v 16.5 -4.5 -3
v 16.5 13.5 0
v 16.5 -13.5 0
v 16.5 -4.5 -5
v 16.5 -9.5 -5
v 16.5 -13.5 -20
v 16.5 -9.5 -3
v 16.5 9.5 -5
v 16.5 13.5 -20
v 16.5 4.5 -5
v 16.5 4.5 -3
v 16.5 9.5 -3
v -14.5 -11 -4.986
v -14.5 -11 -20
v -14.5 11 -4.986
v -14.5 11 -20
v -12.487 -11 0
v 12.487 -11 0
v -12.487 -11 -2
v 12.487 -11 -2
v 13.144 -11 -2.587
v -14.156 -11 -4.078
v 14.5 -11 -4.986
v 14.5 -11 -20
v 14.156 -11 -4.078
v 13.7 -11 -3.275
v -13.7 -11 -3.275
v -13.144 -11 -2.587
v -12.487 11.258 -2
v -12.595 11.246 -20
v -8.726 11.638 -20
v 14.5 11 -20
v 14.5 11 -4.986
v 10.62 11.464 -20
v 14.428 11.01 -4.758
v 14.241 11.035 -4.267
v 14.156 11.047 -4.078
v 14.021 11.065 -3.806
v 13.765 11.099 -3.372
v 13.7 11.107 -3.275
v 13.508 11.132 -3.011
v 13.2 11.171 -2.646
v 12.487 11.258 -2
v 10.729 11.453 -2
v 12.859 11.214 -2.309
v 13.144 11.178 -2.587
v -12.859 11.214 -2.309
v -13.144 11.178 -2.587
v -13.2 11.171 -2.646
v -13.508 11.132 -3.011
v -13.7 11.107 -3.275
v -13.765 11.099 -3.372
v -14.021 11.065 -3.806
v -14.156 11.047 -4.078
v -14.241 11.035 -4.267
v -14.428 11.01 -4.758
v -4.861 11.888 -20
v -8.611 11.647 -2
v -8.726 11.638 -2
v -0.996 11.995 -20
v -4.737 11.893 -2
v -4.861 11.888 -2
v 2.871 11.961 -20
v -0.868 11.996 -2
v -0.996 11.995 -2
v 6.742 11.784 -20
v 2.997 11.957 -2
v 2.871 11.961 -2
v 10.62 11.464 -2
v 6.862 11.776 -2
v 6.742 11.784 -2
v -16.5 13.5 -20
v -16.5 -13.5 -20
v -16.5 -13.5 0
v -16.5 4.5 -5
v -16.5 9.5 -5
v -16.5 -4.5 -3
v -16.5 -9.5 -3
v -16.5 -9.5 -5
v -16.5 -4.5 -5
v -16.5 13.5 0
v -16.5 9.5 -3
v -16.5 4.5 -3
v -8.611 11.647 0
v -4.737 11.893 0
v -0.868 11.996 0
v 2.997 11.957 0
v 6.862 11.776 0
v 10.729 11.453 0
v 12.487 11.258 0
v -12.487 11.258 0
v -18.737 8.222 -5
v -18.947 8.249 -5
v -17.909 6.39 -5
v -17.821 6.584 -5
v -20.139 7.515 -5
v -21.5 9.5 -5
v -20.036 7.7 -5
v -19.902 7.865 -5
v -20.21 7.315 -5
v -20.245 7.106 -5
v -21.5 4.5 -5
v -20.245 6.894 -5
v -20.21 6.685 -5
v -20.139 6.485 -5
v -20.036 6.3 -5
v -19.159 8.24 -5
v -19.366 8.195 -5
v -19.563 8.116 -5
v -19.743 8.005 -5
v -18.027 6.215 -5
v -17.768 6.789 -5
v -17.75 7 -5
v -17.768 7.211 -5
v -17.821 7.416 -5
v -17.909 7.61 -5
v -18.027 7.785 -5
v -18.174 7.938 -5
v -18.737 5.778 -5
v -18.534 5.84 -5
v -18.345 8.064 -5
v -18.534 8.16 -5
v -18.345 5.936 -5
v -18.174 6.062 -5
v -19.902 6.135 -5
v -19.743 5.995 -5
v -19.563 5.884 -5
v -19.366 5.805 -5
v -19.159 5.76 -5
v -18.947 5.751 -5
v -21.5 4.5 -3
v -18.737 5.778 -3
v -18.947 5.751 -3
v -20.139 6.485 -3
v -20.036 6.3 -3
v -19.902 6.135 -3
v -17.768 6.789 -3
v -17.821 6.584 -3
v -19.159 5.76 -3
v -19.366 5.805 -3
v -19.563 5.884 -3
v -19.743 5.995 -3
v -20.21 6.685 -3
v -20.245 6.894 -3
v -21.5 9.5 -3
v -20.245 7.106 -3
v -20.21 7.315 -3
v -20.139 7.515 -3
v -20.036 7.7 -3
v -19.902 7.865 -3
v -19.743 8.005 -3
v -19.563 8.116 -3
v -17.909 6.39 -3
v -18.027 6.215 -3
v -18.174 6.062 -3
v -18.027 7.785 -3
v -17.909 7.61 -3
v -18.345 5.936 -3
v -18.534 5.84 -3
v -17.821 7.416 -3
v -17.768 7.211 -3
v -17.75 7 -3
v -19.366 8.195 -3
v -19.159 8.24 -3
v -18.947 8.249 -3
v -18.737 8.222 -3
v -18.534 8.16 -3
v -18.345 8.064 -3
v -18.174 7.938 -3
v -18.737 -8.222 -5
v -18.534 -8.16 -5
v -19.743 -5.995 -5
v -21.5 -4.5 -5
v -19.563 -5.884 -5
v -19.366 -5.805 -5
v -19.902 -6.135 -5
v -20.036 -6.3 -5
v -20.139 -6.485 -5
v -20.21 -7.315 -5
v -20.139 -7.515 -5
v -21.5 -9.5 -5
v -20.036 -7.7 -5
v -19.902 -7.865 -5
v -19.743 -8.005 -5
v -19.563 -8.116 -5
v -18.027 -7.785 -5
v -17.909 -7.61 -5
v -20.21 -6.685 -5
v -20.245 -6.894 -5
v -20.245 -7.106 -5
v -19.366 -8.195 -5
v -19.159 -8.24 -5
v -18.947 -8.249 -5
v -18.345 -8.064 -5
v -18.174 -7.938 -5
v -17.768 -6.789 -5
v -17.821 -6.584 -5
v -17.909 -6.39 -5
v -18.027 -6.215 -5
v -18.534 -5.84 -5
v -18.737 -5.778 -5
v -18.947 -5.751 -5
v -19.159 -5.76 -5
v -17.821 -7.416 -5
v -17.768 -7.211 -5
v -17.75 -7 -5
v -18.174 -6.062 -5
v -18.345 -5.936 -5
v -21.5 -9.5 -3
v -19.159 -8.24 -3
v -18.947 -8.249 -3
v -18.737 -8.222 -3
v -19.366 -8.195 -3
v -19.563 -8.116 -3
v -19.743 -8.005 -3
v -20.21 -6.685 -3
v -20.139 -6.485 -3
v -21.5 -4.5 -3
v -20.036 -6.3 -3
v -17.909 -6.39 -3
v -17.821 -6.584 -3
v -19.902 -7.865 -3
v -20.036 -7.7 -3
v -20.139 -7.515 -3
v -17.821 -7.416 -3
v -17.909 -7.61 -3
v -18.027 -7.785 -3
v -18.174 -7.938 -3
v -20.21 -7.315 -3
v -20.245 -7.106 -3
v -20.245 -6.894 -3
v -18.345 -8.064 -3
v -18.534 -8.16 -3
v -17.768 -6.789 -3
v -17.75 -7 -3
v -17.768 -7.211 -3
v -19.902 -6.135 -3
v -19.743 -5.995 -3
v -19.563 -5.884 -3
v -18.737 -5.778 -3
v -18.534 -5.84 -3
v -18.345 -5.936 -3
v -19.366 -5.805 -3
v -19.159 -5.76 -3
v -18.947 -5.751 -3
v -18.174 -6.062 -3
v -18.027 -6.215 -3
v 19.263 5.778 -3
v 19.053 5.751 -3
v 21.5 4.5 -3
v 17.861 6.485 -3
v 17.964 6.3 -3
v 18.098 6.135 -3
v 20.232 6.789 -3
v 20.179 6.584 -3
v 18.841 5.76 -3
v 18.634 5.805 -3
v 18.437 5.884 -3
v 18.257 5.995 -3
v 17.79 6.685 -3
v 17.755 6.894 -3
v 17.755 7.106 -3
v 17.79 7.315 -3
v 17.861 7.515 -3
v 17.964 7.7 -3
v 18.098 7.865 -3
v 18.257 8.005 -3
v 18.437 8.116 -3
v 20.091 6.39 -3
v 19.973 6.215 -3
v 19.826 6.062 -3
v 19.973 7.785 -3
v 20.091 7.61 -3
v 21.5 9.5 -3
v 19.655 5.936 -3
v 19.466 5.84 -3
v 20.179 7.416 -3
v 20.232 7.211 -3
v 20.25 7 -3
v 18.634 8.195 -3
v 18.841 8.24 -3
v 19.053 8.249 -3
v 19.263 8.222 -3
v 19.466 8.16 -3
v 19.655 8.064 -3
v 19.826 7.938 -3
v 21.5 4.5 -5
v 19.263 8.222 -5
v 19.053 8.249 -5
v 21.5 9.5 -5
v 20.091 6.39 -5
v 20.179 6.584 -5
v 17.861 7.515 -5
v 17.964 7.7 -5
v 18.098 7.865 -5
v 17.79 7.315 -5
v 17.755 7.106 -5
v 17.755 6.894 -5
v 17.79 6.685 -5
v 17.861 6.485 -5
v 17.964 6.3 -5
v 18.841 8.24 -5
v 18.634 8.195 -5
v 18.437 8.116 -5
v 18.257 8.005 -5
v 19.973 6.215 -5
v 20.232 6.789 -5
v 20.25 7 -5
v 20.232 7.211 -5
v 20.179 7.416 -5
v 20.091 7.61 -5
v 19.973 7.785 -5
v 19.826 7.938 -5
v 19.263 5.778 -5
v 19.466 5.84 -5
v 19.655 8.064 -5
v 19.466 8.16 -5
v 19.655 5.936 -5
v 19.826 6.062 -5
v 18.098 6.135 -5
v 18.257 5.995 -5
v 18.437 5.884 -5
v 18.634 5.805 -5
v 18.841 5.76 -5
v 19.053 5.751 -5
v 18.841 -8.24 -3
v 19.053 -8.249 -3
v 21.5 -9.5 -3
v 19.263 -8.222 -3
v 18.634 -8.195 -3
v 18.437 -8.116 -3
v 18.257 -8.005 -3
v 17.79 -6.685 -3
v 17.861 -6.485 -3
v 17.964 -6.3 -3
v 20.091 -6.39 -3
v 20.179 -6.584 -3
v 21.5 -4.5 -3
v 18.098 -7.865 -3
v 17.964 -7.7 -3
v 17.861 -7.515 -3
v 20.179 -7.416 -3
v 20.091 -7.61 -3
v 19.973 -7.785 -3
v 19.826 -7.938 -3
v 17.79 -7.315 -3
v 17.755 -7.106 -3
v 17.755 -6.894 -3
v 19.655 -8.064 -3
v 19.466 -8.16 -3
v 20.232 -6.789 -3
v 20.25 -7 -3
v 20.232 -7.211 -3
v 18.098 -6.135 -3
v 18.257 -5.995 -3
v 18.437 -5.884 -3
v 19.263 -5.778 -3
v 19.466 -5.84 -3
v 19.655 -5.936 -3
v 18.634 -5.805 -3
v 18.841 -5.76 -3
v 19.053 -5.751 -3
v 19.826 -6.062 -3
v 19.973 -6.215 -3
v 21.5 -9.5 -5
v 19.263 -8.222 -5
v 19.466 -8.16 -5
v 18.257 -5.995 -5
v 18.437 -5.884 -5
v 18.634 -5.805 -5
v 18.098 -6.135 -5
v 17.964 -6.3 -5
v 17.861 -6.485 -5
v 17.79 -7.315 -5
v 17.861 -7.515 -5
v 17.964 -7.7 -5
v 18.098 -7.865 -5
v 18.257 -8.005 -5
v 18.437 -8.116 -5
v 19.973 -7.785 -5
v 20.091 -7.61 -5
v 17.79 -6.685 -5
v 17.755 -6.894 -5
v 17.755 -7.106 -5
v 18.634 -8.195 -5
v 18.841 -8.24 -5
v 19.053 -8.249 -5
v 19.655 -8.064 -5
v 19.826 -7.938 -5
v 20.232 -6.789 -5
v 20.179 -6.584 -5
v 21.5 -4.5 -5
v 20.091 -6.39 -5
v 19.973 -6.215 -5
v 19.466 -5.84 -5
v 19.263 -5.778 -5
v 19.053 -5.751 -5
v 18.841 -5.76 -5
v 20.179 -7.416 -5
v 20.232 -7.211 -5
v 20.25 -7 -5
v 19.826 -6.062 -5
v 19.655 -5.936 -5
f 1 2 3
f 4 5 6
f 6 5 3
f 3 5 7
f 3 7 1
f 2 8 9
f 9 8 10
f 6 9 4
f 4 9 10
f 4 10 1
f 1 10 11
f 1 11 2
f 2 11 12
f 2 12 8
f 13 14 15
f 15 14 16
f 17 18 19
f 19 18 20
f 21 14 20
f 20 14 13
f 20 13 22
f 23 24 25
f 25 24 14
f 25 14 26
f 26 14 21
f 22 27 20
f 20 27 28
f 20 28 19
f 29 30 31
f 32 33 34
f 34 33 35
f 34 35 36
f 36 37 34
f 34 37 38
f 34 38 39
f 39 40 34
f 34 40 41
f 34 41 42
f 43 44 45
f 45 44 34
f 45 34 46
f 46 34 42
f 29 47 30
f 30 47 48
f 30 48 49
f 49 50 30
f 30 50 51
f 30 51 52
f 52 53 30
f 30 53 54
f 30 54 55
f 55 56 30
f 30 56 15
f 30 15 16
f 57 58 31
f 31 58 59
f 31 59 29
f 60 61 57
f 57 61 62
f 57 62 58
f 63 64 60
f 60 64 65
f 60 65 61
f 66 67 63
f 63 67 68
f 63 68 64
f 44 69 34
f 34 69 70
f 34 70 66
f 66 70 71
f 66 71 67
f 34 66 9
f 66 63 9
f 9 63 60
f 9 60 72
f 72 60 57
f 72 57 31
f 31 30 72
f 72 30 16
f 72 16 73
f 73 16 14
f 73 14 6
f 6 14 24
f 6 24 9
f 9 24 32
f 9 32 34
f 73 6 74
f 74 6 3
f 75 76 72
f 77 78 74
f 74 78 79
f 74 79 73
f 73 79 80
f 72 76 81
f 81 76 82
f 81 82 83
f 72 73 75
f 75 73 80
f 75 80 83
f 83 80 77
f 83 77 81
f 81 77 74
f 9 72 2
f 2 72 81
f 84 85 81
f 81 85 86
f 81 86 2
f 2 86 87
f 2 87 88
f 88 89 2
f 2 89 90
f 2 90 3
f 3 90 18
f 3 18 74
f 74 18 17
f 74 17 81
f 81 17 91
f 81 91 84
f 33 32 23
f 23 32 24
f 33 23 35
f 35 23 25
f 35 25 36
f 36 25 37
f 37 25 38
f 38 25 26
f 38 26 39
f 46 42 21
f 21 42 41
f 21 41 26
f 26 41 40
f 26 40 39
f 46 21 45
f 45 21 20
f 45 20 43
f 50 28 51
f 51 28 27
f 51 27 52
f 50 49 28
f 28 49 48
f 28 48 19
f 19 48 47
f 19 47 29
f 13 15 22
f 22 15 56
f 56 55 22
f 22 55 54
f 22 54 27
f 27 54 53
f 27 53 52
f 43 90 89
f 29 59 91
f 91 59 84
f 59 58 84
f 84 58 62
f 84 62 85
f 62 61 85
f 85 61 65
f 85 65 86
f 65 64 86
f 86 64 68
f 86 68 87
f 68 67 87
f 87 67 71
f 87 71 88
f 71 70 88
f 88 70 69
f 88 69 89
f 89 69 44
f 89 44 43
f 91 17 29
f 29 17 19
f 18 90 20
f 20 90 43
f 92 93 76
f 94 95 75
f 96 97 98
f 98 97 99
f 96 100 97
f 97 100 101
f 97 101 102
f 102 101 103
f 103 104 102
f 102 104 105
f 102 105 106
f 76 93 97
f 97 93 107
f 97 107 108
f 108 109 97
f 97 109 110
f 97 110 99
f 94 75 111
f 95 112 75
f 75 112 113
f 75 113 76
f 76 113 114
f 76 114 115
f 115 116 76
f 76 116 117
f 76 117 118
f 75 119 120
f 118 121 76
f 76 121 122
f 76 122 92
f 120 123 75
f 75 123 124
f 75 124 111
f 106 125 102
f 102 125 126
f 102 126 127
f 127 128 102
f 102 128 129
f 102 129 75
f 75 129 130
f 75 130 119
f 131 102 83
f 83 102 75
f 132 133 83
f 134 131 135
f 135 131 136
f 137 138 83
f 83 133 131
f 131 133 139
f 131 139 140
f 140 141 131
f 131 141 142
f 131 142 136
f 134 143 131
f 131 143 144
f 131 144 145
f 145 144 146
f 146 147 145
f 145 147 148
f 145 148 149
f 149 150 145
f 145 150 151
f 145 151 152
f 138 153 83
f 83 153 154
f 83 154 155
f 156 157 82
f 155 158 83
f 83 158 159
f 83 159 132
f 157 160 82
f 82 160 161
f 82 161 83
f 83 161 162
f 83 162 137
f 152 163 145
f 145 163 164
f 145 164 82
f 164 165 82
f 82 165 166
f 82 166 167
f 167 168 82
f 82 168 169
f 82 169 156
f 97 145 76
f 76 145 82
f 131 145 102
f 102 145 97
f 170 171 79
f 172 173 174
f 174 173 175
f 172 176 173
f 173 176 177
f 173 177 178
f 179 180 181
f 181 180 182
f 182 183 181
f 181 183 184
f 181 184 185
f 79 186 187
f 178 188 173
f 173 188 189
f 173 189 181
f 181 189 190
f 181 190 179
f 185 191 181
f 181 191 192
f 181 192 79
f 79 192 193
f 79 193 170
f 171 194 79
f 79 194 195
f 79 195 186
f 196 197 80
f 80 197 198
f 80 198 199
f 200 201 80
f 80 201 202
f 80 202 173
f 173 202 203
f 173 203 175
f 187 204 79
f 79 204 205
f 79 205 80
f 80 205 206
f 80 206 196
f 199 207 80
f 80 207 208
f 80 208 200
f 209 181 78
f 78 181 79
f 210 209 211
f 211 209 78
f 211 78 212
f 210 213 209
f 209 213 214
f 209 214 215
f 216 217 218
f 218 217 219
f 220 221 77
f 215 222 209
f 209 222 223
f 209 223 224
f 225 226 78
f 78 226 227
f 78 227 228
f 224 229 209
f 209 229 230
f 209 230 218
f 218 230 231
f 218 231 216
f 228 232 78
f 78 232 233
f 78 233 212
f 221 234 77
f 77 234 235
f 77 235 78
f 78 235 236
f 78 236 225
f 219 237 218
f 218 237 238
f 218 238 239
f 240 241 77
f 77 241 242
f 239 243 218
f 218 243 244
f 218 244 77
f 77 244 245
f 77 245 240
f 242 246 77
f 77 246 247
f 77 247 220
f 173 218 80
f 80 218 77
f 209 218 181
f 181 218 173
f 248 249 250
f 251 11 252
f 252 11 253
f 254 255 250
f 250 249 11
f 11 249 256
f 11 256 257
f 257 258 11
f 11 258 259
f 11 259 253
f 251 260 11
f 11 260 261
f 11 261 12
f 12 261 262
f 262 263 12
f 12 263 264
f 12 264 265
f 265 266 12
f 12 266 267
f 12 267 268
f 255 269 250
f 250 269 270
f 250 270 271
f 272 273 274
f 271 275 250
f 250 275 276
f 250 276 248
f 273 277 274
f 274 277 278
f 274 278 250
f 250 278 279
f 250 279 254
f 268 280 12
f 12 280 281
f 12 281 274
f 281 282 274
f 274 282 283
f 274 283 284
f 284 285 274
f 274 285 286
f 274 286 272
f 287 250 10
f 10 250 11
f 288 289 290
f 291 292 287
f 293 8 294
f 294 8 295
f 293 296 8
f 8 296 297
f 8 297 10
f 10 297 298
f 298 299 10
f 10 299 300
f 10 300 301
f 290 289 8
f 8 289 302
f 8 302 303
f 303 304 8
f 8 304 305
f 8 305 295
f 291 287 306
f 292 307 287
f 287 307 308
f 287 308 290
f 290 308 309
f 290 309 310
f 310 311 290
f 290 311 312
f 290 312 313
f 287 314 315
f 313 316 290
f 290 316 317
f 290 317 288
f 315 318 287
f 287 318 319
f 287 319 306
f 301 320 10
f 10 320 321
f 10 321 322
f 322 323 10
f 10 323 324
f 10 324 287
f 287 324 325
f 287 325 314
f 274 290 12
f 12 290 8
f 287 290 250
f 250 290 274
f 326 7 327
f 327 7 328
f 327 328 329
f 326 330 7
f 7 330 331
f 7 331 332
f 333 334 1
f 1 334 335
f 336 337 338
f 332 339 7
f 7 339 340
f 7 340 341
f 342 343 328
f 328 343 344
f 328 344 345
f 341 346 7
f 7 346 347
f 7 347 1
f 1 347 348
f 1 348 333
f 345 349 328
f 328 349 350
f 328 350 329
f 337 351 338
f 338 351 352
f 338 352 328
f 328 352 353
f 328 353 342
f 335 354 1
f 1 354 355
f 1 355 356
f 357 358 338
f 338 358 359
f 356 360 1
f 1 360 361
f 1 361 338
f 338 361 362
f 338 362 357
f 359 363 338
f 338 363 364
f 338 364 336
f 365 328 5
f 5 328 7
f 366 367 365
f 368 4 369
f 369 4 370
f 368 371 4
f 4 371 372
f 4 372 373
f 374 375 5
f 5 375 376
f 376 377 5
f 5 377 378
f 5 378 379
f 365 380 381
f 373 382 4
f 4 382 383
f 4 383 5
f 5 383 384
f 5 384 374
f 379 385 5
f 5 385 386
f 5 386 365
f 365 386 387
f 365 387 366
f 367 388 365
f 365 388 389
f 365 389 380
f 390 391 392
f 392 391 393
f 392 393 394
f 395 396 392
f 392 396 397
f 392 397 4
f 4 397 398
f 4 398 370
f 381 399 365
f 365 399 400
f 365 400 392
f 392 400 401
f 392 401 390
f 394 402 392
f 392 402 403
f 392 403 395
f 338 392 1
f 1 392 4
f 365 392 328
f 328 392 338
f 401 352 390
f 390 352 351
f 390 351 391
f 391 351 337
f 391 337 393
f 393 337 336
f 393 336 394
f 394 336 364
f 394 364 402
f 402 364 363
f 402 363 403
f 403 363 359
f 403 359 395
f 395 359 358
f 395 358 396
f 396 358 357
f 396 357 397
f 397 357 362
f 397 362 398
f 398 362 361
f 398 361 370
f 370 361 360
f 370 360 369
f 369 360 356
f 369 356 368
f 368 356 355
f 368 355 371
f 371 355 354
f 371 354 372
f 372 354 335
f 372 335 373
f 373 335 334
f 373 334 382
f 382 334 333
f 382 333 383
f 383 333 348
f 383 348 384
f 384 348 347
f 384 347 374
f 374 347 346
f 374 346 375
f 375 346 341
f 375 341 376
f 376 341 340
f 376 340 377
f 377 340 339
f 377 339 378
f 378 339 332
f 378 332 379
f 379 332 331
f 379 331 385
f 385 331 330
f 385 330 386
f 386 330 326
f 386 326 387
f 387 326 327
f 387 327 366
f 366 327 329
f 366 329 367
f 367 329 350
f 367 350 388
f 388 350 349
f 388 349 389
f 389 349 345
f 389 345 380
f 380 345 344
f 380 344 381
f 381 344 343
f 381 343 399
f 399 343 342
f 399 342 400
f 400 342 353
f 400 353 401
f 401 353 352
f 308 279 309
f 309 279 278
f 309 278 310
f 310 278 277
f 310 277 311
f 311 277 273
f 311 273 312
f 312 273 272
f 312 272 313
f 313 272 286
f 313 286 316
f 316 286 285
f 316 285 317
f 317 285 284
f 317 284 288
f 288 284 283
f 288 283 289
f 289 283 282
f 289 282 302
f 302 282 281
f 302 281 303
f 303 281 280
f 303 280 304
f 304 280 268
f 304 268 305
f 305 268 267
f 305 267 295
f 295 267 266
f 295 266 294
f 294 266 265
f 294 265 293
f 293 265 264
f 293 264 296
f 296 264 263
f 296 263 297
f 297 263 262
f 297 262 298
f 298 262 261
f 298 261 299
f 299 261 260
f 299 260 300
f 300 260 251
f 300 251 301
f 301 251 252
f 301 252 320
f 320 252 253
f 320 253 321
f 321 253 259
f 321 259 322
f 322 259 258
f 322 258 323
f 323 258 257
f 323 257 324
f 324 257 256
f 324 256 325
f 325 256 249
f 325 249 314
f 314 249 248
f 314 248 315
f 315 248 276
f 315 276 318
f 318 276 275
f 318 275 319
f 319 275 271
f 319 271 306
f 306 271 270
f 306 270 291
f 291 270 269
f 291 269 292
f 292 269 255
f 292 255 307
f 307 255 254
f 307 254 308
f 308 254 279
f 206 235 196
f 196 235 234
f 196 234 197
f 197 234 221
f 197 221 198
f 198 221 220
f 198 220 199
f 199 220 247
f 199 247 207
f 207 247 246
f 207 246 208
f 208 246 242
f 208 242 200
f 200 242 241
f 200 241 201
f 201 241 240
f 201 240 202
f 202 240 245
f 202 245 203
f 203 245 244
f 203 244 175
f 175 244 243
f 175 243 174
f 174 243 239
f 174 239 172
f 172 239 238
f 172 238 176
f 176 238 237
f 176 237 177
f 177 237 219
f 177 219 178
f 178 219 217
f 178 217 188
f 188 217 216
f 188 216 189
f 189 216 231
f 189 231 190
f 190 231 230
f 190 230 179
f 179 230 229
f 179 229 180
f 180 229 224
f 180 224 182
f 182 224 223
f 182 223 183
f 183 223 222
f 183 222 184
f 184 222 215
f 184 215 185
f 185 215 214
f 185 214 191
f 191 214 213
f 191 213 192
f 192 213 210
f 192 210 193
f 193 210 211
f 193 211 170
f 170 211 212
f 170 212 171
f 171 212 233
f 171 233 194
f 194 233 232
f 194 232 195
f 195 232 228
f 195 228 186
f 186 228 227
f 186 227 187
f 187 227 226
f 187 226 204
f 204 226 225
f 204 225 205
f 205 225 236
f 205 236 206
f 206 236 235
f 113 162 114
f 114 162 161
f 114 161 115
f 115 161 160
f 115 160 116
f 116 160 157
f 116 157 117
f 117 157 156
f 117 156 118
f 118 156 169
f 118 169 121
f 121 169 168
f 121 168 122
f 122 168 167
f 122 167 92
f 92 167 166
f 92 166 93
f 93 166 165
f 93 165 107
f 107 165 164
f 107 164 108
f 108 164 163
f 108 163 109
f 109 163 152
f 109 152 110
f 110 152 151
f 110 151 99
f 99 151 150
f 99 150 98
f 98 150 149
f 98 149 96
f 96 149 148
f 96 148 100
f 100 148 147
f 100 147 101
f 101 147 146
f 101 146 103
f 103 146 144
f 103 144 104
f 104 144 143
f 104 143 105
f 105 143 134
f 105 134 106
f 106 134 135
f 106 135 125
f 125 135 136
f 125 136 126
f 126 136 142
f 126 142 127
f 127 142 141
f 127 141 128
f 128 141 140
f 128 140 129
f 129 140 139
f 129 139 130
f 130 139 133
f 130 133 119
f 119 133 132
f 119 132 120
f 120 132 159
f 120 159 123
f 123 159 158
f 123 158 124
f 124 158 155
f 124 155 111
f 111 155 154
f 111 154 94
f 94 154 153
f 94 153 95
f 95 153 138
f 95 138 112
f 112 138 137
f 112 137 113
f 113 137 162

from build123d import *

# Parameters (mm, degrees)
SKETCH2_W           = 33
SKETCH2_H           = 27
BOSS_EXTRUDE1_DEPTH = 20
CUT_EXTRUDE1_DEPTH  = 18
BOSS_EXTRUDE3_DEPTH = 25
CUT_EXTRUDE4_DEPTH  = 2
SKETCH10_W          = 2
SKETCH10_H          = 5
BOSS_EXTRUDE4_DEPTH = 5
SKETCH11_W          = 2
SKETCH11_H          = 5
BOSS_EXTRUDE5_DEPTH = 5
SKETCH12_R          = 1.25
CUT_EXTRUDE5_DEPTH  = 2


with BuildPart() as part:
    # Sketch2 → Boss-Extrude1 (new body)
    with BuildSketch(Plane.XY):
        Rectangle(SKETCH2_W, SKETCH2_H)
    extrude(amount=-BOSS_EXTRUDE1_DEPTH)

    # Sketch3 → Cut-Extrude1 (cut)
    with BuildSketch(Plane(origin=(0, 0, -20), x_dir=(-1, 0, 0), z_dir=(0, 0, -1))):
        with BuildLine():
            Line((-14.5, 11), (-14.5, -11))
            Line((-14.5, -11), (14.5, -11))
            Line((14.5, -11), (14.5, 11))
            add(Edge.make_bspline(
                [(-14.5, 11), (0, 13), (14.5, 11)],
                knots=[0, 0, 0, 1, 1, 1], degree=2))
        make_face()
    extrude(amount=-CUT_EXTRUDE1_DEPTH, mode=Mode.SUBTRACT)

    # Sketch4 → Boss-Extrude3 (add)
    with BuildSketch(Plane(origin=(0, 13.5, 0), x_dir=(1, 0, 0), z_dir=(0, 1, 0))):
        with BuildLine():
            Line((14.504051414, 5), (14.504051414, 2))
            Line((14.504051414, 2), (14.504051414, 1))
            Line((14.504051414, 1), (10.553086369, 1))
            add(Edge.make_bspline(
                [(14.504051414, 5), (13.626897644, 2.036892848), (10.553086369, 1)],
                knots=[0, 0, 0, 1, 1, 1], degree=2))
        make_face()
        with BuildLine():
            add(Edge.make_bspline(
                [(-14.504051414, 5), (-13.626897644, 2.036892848), (-10.553086369, 1)],
                knots=[0, 0, 0, 1, 1, 1], degree=2))
            Line((-10.553086369, 1), (-14.504051414, 1))
            Line((-14.504051414, 1), (-14.504051414, 2))
            Line((-14.504051414, 2), (-14.504051414, 5))
        make_face()
    extrude(amount=-BOSS_EXTRUDE3_DEPTH)

    # Sketch9 → Cut-Extrude4 (cut)
    with BuildSketch(Plane(origin=(0, 0, -2), x_dir=(-1, 0, 0), z_dir=(0, 0, -1))):
        with BuildLine():
            Line((-12.486551431, 11.258435355), (-12.486551431, -11))
            Line((-12.486551431, -11), (12.486551431, -11))
            Line((12.486551431, -11), (12.486551431, 11.258435355))
            add(Edge.make_bspline(
                [(-12.486551431, 11.258435355), (0, 12.741564645), (12.486551431, 11.258435355)],
                knots=[0, 0, 0, 1, 1, 1], degree=2))
        make_face()
    extrude(amount=-CUT_EXTRUDE4_DEPTH, mode=Mode.SUBTRACT)

    # Sketch10 → Boss-Extrude4 (add)
    with BuildSketch(Plane.ZY.offset(16.5)):
        with Locations((-4, 7)):
            Rectangle(SKETCH10_W, SKETCH10_H)
        with Locations((-4, -7)):
            Rectangle(SKETCH10_W, SKETCH10_H)
    extrude(amount=BOSS_EXTRUDE4_DEPTH)

    # Sketch11 → Boss-Extrude5 (add)
    with BuildSketch(Plane(origin=(16.5, 0, 0), x_dir=(0, 0, -1), z_dir=(1, 0, 0))):
        with Locations((4, 7)):
            Rectangle(SKETCH11_W, SKETCH11_H)
        with Locations((4, -7)):
            Rectangle(SKETCH11_W, SKETCH11_H)
    extrude(amount=BOSS_EXTRUDE5_DEPTH)

    # Sketch12 → Cut-Extrude5 (cut)
    with BuildSketch(Plane.XY.offset(-3)):
        with Locations((19, -7)):
            Circle(SKETCH12_R)
        with Locations((19, 7)):
            Circle(SKETCH12_R)
        with Locations((-19, 7)):
            Circle(SKETCH12_R)
        with Locations((-19, -7)):
            Circle(SKETCH12_R)
    extrude(amount=-CUT_EXTRUDE5_DEPTH, mode=Mode.SUBTRACT)


solid = part.part
